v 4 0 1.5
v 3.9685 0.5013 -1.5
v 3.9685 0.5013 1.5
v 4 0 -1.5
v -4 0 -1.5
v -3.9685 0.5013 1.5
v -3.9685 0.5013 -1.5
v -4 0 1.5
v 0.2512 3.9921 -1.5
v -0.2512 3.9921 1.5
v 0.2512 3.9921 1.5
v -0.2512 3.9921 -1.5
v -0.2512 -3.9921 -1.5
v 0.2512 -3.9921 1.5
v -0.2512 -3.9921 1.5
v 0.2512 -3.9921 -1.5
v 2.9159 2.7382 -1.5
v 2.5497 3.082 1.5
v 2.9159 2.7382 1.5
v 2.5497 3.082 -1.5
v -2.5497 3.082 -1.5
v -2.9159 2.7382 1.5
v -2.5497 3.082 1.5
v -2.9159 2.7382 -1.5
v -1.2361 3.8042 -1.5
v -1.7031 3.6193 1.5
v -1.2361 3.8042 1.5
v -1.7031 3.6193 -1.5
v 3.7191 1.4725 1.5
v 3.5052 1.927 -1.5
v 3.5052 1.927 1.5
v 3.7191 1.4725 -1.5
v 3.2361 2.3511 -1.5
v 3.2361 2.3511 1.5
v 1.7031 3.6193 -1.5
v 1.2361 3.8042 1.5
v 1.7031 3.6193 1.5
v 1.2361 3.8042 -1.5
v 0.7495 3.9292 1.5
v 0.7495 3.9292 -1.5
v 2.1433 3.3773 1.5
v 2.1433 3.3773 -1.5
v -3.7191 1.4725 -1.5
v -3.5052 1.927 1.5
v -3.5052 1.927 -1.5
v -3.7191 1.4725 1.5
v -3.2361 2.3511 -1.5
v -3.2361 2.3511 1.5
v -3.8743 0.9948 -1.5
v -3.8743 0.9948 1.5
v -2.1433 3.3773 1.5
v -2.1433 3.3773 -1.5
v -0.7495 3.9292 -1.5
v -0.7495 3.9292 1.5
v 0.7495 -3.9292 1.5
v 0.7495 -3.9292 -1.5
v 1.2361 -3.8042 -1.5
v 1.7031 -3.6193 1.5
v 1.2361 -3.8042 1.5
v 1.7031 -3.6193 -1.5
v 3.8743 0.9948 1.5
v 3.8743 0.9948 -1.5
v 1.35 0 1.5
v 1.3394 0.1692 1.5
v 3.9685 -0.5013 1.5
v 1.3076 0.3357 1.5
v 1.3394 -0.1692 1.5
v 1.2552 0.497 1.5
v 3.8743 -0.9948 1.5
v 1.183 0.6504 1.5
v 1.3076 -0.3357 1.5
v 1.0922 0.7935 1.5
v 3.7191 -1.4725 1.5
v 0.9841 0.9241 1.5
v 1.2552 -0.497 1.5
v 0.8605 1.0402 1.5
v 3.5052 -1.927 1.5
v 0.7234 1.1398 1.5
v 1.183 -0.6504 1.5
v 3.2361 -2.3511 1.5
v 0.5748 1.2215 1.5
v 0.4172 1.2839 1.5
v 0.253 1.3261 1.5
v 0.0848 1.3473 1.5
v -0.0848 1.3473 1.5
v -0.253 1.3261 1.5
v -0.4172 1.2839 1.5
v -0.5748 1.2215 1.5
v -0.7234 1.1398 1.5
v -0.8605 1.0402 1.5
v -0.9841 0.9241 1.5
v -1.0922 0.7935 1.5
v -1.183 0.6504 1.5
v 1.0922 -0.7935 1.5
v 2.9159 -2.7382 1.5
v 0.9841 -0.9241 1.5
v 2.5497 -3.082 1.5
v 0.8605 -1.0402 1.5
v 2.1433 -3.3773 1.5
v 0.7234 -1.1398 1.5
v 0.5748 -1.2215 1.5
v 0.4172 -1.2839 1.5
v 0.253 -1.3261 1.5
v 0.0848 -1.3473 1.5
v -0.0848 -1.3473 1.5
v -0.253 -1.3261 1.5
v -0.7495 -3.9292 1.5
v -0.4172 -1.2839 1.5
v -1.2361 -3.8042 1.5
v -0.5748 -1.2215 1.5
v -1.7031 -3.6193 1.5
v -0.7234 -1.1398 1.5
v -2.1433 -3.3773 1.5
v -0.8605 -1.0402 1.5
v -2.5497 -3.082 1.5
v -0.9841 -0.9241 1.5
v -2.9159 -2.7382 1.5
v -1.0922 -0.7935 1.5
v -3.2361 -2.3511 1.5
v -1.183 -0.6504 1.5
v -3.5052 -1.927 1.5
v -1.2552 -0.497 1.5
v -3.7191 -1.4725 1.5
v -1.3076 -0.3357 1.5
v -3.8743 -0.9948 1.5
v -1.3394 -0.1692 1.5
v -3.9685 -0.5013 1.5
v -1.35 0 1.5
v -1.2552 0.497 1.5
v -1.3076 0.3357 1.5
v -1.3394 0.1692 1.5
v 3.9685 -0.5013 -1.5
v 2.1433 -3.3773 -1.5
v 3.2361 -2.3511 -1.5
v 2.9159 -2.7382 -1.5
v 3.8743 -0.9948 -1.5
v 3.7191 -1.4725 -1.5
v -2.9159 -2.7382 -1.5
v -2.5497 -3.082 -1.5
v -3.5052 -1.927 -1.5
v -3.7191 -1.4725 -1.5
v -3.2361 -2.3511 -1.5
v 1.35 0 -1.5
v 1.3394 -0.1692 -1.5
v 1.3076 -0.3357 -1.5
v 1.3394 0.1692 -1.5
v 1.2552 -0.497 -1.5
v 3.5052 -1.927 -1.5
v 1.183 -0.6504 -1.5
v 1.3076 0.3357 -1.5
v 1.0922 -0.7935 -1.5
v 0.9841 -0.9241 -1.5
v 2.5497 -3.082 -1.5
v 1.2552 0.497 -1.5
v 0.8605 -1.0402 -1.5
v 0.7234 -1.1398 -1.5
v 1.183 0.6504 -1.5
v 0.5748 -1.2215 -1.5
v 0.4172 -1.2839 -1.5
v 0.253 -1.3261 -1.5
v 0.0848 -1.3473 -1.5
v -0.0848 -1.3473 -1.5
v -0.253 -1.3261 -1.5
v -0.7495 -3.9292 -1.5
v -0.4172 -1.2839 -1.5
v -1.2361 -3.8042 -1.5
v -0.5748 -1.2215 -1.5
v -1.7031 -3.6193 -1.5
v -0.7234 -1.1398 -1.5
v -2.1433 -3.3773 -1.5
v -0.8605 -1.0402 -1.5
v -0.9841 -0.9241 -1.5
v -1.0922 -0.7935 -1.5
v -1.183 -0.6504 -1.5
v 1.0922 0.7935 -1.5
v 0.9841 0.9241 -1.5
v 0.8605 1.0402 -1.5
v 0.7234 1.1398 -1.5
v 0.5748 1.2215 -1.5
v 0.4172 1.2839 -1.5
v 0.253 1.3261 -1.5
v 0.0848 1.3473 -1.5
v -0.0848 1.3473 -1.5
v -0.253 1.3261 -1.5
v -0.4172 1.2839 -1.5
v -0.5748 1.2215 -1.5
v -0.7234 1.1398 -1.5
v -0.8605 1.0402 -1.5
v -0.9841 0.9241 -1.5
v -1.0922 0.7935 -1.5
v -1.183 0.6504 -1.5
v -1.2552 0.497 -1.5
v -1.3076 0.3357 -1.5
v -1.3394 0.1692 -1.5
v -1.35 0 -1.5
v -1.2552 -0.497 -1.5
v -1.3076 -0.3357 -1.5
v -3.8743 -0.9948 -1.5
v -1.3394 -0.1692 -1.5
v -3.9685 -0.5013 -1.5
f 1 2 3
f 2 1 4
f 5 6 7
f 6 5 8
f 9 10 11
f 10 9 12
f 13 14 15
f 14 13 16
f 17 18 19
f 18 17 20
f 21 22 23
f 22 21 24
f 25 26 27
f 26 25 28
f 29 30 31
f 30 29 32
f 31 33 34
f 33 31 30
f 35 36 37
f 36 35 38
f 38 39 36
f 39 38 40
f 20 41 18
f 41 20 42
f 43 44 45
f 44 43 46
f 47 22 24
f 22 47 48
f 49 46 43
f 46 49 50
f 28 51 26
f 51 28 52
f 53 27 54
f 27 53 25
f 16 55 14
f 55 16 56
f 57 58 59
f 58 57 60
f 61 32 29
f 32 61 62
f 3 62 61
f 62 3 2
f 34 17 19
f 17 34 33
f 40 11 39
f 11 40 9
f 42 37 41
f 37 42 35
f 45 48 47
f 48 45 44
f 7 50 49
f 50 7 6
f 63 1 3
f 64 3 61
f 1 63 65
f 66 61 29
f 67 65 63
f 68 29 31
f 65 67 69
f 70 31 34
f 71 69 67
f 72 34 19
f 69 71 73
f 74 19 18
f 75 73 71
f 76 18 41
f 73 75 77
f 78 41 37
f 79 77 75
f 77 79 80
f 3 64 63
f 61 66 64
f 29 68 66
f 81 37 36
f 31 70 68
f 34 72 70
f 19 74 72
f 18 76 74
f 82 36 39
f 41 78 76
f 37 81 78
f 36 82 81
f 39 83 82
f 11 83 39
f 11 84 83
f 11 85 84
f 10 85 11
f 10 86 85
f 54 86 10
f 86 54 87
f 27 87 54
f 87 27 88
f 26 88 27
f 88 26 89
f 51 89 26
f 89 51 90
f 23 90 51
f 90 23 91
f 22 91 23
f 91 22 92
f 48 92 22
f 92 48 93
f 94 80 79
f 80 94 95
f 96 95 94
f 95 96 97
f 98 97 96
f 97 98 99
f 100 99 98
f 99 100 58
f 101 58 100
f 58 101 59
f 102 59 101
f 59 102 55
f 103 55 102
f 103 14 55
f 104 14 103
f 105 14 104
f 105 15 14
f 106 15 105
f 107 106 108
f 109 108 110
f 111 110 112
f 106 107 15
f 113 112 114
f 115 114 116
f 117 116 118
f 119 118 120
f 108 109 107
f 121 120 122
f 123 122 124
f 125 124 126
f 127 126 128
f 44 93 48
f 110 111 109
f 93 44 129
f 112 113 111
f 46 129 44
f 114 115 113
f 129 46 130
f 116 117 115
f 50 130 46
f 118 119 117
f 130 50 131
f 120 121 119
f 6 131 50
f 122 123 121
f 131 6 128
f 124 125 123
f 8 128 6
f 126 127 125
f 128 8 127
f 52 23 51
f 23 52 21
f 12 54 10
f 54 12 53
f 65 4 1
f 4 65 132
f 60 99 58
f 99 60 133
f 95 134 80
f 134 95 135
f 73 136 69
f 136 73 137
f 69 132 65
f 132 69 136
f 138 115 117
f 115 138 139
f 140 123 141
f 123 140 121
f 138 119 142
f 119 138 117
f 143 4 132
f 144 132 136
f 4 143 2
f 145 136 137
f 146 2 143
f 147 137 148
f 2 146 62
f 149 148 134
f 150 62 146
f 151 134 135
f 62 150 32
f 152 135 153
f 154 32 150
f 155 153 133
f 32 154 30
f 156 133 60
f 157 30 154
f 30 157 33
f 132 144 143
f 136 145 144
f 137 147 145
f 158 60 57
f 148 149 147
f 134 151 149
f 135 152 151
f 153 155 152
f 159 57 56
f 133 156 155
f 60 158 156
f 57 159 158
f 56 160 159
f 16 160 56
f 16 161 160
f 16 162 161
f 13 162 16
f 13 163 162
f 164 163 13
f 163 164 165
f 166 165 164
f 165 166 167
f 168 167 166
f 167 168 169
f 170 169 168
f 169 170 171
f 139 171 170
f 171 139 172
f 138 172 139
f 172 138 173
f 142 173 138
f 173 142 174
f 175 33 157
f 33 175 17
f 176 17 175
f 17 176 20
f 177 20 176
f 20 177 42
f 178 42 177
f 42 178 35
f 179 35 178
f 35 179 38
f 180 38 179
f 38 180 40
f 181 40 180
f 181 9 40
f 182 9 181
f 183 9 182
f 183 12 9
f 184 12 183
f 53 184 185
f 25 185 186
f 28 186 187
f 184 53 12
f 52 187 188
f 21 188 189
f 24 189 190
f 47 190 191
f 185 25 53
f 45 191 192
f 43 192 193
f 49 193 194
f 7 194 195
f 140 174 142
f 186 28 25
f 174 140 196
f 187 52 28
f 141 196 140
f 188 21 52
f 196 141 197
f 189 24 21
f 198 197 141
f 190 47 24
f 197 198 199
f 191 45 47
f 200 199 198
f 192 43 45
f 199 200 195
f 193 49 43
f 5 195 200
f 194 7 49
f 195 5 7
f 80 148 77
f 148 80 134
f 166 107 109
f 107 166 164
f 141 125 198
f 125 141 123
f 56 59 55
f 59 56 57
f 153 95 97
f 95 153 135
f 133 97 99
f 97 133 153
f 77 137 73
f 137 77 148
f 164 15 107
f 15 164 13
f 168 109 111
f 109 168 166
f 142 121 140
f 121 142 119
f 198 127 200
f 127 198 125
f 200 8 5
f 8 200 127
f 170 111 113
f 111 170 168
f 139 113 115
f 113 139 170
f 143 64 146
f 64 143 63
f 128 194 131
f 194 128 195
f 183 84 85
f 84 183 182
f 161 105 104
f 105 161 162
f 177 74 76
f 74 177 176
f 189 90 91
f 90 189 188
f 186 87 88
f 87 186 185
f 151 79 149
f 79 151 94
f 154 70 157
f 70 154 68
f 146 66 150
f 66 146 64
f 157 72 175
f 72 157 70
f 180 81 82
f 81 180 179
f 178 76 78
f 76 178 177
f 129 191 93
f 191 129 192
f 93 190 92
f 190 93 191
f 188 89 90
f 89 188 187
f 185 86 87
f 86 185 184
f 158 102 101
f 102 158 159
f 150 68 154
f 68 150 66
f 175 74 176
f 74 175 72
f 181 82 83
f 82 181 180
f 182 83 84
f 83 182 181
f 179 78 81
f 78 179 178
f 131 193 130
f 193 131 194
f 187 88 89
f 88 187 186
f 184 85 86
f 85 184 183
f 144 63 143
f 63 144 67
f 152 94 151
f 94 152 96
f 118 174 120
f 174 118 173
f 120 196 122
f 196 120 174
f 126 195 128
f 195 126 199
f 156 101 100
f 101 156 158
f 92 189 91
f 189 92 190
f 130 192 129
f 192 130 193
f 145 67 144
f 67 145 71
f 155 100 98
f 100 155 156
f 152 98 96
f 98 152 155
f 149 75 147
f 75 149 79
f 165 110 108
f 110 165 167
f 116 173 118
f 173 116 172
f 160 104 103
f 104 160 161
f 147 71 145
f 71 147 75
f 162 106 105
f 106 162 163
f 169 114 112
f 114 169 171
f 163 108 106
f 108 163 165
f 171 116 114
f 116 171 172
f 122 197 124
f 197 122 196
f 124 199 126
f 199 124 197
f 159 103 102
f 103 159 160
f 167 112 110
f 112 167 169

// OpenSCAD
$fn = 50;


difference() {
	union() {
		translate(v = [0, 0, -1.5000000000]) {
			cylinder(h = 3, r = 4.0000000000);
		}
	}
	union() {
		translate(v = [0, 0, -100.0000000000]) {
			cylinder(h = 200, r = 1.3500000000);
		}
	}
}
